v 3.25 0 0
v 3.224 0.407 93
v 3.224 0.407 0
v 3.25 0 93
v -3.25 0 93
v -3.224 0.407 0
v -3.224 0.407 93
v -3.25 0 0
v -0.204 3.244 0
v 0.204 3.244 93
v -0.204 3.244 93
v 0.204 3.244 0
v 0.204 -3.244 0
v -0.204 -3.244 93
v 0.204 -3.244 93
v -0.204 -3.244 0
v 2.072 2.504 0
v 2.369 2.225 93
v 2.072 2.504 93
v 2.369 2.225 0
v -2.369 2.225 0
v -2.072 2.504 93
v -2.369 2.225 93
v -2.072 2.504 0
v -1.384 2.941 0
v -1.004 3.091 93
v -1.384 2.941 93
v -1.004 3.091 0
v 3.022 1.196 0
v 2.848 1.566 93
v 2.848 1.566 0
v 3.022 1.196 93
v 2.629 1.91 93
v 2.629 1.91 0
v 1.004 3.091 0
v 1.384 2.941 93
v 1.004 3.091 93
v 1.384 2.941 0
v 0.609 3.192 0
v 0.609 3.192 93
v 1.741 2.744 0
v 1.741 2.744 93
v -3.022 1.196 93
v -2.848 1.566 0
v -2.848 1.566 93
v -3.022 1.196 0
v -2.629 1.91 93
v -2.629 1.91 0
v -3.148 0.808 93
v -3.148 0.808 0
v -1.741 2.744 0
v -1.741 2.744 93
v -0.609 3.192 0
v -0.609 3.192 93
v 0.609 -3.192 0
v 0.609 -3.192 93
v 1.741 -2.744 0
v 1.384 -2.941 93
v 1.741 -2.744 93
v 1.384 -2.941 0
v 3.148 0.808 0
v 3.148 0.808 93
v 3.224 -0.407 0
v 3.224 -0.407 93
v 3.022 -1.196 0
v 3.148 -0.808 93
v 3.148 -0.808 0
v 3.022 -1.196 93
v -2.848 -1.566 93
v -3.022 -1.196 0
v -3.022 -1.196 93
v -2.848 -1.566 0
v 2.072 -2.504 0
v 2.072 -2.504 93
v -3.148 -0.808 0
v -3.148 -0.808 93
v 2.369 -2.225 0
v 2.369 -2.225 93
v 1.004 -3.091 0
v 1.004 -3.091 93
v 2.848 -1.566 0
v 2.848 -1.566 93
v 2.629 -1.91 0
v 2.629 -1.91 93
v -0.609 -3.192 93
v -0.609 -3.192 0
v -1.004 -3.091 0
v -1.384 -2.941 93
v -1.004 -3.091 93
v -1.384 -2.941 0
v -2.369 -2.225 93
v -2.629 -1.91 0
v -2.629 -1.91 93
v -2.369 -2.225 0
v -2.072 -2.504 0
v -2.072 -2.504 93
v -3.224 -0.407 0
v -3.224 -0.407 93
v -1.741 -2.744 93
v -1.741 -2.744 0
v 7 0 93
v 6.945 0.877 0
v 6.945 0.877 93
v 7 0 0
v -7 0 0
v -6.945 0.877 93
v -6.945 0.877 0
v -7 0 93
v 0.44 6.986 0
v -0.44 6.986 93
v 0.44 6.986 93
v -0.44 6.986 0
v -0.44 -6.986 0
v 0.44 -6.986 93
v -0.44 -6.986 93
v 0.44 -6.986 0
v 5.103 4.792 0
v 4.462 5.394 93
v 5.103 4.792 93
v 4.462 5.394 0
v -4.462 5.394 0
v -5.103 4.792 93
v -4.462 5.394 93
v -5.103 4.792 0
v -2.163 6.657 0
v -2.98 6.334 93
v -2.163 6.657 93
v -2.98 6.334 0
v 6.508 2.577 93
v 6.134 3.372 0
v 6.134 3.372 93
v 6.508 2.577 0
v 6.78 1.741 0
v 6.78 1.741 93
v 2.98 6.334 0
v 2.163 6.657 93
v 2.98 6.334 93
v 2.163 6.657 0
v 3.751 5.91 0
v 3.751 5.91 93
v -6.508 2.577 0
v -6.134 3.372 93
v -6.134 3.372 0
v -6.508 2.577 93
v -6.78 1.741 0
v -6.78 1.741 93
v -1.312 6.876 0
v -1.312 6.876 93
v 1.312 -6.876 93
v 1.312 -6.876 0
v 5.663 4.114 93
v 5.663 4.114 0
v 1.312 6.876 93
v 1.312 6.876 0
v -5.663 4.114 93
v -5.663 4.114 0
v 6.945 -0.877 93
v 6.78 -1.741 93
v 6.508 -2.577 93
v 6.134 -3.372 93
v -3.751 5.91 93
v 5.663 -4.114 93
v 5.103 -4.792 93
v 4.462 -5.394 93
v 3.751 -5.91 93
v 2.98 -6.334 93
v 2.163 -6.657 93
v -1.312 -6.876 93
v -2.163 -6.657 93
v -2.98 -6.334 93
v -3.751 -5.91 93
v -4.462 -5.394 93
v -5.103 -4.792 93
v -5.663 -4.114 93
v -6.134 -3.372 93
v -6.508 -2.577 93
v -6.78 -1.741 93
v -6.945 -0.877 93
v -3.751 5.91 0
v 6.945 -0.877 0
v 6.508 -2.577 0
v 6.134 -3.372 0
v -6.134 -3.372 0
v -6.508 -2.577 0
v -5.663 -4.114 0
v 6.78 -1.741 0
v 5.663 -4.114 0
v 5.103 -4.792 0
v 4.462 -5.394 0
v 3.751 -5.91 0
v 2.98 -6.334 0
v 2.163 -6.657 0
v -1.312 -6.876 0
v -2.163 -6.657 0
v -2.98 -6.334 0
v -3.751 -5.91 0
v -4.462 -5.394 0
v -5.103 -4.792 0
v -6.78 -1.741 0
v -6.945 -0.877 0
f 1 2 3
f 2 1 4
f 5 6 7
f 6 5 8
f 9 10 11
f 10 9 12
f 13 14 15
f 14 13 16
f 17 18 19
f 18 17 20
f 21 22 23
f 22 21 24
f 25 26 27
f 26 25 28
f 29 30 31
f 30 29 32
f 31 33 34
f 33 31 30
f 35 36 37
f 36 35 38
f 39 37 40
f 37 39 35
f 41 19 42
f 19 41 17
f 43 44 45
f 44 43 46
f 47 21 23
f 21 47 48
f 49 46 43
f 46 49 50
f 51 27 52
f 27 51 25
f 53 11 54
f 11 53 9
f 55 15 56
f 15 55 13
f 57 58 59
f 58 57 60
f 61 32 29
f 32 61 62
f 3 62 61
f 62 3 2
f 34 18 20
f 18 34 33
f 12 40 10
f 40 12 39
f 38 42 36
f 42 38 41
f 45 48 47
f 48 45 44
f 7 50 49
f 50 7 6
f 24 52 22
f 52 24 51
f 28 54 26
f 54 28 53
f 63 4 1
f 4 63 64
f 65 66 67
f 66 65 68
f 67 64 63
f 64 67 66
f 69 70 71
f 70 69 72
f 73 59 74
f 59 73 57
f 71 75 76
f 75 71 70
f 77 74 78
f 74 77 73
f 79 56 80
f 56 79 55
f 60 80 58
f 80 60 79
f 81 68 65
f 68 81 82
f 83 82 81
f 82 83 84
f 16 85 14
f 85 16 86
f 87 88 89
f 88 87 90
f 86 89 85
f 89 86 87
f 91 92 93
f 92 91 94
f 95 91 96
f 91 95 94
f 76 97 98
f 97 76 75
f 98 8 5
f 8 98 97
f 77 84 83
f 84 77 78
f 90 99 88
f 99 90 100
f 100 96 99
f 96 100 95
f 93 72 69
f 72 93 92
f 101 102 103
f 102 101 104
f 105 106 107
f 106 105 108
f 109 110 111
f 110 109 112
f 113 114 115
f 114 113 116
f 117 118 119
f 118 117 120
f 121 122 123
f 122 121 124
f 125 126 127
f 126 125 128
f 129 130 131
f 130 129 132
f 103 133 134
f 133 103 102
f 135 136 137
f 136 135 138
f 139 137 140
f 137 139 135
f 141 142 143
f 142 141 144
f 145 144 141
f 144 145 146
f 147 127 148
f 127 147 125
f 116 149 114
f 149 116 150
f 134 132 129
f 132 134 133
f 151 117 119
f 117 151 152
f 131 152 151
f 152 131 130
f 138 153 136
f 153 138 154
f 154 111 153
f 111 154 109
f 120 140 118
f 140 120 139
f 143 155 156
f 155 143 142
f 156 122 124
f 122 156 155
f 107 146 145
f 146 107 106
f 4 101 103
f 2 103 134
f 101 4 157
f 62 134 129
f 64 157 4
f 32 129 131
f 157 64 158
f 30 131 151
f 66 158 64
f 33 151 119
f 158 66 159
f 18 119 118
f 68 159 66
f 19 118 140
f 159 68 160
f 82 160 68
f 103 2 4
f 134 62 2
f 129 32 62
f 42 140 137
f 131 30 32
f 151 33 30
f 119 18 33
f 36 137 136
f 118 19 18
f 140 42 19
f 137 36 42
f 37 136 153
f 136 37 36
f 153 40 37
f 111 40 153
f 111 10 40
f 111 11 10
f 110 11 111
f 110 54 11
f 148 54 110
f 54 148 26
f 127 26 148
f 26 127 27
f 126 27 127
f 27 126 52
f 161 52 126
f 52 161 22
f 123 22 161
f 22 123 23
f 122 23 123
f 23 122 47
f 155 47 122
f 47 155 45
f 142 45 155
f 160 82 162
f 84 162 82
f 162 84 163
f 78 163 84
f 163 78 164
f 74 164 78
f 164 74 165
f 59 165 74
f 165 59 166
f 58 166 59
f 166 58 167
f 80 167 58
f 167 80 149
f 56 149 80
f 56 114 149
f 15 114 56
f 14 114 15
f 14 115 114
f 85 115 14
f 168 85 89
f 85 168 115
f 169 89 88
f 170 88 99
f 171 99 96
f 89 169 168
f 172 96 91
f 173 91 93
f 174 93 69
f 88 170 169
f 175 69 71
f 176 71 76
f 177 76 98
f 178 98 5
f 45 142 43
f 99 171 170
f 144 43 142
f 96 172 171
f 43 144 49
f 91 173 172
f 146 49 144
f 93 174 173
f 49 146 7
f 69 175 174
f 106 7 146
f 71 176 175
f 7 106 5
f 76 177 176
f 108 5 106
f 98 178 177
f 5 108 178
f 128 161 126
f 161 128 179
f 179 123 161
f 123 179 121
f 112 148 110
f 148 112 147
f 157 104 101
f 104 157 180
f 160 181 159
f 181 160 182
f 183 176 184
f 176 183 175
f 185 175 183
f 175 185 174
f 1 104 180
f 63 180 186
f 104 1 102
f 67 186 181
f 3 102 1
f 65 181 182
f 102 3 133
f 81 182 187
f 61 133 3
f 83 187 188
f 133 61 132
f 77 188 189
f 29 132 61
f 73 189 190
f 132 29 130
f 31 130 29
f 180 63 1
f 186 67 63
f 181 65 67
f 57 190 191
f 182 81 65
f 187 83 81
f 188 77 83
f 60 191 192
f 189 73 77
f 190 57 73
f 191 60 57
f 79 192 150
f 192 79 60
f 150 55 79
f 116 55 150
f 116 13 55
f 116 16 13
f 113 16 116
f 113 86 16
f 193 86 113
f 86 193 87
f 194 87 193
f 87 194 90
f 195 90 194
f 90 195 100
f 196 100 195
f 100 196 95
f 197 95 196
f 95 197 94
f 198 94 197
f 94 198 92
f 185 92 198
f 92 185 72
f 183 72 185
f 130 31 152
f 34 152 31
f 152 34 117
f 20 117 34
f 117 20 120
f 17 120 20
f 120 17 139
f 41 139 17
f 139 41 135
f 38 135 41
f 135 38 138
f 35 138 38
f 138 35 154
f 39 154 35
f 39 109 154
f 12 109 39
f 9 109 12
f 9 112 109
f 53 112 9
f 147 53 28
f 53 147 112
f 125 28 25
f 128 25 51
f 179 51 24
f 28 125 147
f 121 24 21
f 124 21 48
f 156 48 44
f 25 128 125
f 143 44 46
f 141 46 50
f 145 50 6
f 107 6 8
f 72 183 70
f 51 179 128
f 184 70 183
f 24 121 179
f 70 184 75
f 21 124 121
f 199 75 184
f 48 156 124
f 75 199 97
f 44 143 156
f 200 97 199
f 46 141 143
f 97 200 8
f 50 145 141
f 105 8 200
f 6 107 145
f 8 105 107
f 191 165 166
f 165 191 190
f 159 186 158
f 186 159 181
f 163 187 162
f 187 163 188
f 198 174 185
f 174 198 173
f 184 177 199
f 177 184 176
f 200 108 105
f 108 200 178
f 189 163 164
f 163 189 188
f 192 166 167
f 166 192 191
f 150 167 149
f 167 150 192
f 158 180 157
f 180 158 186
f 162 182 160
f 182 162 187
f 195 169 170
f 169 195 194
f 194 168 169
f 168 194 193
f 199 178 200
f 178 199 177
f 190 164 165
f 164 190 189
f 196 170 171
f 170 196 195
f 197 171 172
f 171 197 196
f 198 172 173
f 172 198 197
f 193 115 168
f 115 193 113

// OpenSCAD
$fn = 50;


difference() {
	union() {
		cylinder(h = 93, r = 7.0000000000);
	}
	union() {
		cylinder(h = 93, r = 3.2500000000);
		cylinder(h = 93, r = 3.2500000000);
		cylinder(h = 93, r = 1.8000000000);
		cylinder(h = 93, r = 1.8000000000);
		cylinder(h = 93, r = 1.8000000000);
		cylinder(h = 93, r = 1.8000000000);
		cylinder(h = 93, r = 1.8000000000);
		cylinder(h = 93, r = 1.8000000000);
	}
}
